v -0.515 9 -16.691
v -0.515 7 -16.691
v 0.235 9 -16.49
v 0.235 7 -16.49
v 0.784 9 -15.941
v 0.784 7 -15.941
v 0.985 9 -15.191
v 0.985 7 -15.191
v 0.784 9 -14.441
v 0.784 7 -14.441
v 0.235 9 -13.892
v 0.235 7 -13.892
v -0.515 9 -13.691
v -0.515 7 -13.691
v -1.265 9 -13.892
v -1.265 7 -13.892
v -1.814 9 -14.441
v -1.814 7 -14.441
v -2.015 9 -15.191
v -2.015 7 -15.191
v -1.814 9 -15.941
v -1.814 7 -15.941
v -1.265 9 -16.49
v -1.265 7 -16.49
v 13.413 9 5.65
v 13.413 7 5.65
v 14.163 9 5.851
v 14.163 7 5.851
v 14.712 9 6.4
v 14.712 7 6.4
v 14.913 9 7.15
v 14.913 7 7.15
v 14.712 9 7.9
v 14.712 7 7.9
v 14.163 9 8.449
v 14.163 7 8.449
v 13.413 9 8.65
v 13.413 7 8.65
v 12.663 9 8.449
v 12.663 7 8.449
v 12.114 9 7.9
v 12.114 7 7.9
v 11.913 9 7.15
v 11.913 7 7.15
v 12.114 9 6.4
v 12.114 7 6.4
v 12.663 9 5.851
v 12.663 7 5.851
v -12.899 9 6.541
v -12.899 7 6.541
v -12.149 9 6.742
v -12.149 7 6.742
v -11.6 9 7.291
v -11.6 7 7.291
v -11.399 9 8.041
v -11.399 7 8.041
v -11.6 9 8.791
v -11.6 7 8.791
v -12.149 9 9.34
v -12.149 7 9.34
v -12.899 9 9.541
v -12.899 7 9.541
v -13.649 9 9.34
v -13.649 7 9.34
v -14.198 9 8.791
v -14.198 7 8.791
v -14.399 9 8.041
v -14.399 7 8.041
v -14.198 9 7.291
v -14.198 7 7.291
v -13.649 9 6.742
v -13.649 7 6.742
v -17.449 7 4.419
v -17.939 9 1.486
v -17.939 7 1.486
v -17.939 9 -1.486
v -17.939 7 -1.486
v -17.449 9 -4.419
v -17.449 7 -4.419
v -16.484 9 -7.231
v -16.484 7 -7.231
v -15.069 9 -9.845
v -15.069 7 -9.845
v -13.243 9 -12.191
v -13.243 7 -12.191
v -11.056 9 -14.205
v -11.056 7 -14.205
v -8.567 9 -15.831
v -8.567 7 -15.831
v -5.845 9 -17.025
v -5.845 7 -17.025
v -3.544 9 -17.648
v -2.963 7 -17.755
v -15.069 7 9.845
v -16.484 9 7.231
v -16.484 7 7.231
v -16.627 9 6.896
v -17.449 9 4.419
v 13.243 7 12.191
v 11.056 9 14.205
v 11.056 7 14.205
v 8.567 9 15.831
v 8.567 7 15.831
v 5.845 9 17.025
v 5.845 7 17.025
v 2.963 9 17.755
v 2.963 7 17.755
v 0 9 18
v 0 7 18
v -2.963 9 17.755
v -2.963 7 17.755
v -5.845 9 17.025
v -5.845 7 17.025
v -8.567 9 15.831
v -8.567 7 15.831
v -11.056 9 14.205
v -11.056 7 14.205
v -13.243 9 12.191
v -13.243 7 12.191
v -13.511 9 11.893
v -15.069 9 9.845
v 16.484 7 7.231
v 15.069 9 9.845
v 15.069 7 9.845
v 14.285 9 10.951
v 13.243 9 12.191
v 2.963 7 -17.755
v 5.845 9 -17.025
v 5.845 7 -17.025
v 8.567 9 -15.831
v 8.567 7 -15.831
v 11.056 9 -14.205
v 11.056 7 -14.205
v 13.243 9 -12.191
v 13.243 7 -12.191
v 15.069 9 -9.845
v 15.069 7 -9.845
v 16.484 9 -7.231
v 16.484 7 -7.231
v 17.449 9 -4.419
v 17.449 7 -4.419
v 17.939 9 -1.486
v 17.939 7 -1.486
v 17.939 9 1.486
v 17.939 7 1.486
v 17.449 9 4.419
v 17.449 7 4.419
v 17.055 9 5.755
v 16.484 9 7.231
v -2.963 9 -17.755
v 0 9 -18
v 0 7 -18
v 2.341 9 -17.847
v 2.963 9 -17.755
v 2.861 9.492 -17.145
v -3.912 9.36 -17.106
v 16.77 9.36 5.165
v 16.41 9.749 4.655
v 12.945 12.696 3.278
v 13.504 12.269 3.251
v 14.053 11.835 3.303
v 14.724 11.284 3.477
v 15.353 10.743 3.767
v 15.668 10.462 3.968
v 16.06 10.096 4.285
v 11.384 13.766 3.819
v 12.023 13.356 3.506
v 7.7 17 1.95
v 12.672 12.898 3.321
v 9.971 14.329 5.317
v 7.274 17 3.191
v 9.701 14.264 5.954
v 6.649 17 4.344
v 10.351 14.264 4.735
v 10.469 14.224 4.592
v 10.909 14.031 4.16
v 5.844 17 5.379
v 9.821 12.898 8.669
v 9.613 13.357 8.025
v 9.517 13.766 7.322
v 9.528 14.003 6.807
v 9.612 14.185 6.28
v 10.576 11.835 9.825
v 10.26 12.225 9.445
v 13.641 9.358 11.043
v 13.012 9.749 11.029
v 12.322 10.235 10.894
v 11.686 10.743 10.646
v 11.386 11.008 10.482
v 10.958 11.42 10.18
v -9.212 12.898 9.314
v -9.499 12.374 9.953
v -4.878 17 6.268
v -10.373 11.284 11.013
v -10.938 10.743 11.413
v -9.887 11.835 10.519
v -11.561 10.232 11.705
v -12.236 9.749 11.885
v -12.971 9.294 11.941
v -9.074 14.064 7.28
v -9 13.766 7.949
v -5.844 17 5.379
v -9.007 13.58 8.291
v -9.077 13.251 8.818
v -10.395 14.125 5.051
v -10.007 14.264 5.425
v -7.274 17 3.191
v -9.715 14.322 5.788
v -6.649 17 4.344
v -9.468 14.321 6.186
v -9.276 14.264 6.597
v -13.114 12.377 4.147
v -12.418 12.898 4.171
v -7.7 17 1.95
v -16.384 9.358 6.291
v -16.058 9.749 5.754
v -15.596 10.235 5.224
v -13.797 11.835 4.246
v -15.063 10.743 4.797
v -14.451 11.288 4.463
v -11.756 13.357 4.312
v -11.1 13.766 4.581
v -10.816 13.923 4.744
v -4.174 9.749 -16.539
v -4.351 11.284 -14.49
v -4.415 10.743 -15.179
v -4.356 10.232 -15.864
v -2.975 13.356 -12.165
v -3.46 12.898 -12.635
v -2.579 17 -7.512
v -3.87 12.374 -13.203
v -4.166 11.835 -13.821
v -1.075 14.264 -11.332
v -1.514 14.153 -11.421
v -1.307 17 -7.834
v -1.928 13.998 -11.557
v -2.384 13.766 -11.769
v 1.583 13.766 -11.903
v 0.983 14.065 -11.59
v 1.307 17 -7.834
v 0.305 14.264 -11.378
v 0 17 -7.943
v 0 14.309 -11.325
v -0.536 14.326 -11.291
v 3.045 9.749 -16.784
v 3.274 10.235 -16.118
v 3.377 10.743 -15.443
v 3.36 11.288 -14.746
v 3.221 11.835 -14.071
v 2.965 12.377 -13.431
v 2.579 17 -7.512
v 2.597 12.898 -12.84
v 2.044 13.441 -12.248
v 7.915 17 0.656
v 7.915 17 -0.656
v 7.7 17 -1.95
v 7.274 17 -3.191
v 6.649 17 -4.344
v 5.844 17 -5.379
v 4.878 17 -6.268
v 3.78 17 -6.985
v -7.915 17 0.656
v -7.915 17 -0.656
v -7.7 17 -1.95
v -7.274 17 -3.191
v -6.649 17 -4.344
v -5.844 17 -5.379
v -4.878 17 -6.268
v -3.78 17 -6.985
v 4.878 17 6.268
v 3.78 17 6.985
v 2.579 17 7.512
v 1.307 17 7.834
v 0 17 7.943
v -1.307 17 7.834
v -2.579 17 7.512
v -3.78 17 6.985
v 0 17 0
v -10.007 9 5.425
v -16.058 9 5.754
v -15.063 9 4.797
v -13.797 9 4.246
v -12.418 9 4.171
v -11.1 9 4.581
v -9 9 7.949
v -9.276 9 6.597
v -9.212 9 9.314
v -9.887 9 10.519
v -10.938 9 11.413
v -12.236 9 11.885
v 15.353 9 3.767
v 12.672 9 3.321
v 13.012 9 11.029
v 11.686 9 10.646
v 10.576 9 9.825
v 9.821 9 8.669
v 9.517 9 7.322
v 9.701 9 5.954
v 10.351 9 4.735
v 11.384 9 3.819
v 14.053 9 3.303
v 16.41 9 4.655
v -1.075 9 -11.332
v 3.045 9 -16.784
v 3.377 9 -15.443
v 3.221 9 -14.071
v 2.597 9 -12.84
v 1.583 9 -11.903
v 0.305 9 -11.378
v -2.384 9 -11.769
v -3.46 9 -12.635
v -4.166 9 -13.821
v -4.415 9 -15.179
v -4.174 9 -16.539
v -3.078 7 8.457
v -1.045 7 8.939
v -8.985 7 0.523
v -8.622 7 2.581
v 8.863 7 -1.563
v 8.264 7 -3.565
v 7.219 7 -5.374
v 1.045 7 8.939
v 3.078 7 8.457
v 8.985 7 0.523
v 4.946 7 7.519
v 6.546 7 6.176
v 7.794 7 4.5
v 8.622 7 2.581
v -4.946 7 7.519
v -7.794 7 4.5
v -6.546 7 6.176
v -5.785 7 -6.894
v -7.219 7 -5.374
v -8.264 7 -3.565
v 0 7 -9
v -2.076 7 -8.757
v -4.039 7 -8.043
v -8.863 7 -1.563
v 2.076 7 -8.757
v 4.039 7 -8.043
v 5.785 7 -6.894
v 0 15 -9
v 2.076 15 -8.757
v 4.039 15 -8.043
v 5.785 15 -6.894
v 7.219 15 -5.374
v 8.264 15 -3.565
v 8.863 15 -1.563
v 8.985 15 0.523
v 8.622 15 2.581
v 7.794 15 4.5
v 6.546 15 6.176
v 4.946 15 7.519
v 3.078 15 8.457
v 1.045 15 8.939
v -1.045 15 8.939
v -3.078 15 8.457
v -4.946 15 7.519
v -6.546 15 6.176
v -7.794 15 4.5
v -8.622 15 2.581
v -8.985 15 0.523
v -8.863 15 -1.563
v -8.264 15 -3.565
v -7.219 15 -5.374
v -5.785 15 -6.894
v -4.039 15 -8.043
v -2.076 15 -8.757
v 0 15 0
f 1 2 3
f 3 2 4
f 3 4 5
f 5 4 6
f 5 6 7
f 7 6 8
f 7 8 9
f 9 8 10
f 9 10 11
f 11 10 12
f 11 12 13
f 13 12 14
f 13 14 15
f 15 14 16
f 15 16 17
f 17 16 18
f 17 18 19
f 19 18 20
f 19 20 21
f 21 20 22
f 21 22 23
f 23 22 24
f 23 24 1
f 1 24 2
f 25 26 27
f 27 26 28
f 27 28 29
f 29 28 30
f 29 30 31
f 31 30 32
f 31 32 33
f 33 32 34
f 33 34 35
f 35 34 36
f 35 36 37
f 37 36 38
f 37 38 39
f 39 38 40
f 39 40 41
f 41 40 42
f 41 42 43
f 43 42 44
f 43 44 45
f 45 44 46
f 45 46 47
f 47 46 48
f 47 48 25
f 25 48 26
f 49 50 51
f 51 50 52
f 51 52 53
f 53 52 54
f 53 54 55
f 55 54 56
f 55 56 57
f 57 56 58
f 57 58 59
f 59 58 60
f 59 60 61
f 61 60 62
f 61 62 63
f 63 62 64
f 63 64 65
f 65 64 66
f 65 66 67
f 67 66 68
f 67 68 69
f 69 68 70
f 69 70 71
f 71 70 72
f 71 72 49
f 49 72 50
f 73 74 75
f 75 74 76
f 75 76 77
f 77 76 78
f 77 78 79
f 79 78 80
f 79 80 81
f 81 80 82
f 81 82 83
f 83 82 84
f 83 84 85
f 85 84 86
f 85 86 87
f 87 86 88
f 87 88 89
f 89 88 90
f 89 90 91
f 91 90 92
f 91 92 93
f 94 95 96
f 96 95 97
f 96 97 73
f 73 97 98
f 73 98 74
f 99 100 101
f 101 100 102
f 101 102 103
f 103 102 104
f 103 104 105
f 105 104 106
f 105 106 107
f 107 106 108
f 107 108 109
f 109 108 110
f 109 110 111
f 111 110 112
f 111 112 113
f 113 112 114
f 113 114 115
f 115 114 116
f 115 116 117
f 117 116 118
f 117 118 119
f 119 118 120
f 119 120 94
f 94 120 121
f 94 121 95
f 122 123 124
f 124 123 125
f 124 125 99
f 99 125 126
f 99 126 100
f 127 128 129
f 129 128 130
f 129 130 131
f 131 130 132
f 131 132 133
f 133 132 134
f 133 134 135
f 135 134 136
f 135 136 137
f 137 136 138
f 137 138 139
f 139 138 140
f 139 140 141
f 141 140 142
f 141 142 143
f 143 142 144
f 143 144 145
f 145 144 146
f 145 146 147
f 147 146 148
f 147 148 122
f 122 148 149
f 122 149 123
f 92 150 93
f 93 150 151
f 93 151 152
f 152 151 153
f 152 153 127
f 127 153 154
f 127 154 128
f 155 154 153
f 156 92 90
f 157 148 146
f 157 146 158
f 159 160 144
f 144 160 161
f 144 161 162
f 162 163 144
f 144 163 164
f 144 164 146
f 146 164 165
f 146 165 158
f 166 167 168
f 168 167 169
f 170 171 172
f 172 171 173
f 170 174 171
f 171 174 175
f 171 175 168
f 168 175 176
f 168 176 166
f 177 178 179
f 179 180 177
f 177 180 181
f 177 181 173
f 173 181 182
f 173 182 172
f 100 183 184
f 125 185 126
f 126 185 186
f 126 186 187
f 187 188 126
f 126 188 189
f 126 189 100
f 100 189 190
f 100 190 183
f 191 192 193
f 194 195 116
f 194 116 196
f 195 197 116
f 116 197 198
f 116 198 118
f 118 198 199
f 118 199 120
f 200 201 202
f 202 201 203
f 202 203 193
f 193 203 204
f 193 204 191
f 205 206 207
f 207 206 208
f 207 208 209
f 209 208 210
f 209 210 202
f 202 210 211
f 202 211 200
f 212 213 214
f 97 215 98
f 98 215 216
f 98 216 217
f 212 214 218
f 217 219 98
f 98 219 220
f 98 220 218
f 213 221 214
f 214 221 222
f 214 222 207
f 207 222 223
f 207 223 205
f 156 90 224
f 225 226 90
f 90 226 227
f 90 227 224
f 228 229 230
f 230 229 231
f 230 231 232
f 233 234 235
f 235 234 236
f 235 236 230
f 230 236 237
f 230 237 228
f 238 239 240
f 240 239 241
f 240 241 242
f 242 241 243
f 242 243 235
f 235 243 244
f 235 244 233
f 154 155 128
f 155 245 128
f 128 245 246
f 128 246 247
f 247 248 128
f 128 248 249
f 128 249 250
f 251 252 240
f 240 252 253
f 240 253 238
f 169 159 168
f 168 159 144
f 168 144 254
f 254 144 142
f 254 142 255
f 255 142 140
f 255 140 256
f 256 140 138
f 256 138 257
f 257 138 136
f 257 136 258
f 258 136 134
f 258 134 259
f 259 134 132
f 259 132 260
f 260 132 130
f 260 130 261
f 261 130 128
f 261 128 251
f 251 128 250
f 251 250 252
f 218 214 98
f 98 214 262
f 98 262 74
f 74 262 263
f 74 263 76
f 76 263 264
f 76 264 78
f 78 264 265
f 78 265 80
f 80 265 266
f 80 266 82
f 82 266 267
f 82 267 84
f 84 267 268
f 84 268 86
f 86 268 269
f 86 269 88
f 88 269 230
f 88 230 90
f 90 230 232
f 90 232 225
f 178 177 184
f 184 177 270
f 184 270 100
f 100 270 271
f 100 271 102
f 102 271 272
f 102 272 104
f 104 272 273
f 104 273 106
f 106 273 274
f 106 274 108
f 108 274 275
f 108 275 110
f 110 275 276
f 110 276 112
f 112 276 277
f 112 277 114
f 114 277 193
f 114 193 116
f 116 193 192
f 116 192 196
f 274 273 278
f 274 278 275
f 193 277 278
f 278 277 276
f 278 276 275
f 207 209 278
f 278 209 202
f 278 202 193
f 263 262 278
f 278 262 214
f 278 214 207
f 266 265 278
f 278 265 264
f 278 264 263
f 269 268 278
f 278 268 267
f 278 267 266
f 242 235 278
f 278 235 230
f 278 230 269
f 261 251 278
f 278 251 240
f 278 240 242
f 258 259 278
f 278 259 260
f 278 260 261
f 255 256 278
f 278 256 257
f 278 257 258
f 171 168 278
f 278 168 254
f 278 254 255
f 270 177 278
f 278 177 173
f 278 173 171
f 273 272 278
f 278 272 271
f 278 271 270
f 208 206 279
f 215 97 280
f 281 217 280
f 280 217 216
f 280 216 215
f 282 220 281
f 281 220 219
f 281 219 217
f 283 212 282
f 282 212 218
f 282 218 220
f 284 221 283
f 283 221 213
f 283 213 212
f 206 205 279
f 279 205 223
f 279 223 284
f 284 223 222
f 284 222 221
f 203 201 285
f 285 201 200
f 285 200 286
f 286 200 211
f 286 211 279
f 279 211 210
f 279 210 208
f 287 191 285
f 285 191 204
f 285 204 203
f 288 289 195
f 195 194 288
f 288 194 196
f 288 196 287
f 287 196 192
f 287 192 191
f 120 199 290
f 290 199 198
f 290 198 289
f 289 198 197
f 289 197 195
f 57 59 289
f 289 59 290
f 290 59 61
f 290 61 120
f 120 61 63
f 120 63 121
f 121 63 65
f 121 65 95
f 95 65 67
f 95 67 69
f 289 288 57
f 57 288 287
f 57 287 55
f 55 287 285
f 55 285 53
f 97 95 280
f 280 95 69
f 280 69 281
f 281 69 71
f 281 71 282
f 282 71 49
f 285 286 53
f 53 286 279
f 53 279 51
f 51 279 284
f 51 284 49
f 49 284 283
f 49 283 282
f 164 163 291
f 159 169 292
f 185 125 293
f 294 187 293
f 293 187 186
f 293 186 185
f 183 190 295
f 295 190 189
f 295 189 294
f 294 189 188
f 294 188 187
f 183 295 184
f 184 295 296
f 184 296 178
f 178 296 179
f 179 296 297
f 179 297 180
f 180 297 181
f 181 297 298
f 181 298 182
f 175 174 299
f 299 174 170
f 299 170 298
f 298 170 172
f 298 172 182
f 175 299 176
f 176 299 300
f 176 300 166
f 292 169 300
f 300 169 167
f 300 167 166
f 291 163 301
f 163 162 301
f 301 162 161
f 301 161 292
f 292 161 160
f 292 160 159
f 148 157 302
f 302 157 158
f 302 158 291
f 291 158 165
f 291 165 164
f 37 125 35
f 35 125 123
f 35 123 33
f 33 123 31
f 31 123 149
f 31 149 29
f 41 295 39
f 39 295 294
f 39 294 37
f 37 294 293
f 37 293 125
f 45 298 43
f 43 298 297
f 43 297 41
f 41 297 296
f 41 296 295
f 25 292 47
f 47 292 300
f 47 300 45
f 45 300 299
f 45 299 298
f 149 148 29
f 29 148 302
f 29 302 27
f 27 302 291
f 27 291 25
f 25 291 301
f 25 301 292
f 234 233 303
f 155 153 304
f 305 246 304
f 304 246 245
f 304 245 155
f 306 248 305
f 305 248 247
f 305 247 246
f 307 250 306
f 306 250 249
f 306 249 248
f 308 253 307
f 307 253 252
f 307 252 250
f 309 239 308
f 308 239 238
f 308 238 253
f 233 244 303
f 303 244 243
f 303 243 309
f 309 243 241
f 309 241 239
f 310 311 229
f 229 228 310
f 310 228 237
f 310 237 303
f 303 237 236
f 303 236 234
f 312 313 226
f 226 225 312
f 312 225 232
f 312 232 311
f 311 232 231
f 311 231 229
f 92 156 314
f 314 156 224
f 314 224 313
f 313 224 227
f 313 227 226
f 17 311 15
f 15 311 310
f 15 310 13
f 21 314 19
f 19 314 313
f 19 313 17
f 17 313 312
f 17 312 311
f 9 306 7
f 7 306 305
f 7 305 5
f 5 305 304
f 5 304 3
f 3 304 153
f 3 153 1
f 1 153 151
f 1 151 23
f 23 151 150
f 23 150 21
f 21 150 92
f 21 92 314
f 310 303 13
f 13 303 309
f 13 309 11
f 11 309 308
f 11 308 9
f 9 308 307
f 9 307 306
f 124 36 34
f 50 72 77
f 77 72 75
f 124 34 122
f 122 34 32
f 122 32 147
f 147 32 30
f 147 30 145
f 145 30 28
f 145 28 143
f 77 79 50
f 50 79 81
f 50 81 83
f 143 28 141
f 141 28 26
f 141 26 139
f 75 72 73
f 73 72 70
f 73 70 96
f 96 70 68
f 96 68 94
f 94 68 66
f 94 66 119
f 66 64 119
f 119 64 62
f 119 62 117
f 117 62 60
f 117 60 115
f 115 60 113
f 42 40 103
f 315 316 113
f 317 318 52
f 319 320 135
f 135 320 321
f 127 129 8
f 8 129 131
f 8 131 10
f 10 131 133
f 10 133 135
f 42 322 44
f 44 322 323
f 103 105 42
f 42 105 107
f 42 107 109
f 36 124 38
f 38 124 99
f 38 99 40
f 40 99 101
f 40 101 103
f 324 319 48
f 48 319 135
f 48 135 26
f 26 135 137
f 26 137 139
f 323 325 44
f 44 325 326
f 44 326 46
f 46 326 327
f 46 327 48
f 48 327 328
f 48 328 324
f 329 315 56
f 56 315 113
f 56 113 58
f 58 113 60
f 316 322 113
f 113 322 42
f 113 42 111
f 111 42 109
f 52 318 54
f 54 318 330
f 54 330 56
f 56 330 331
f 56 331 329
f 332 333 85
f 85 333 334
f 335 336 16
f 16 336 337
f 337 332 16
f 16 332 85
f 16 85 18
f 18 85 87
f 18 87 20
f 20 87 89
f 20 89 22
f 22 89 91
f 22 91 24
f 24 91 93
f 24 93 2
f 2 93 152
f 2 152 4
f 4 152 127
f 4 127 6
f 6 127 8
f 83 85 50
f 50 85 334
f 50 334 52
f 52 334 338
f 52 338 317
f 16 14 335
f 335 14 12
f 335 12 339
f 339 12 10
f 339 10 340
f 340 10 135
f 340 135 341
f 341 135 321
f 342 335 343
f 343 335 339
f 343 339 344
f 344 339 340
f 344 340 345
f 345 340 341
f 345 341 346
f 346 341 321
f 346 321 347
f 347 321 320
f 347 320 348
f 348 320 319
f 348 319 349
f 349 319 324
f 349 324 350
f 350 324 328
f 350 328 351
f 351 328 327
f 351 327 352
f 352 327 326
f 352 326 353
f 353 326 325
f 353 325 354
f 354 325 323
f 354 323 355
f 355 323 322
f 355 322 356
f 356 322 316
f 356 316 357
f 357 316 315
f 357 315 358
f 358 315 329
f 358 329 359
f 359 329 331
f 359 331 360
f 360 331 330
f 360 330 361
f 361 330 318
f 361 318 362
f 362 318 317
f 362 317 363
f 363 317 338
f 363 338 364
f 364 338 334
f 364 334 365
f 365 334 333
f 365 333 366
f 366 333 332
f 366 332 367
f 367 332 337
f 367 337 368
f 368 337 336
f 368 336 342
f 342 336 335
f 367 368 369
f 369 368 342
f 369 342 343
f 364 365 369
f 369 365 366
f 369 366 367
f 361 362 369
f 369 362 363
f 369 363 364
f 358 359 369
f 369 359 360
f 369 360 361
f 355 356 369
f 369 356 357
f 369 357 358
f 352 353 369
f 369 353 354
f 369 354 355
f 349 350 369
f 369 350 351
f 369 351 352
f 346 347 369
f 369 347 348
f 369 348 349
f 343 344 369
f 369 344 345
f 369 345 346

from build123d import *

# Parameters (mm, degrees)
ESQUISSE1_R             = 10.85
ESQUISSE1_R_2           = 9
BOSS_EXTRU_1_DEPTH      = 7
ESQUISSE2_R             = 18
BOSS_EXTRU_2_DEPTH      = 2
ESQUISSE4_R             = 18
BOSS_EXTRU_3_DEPTH      = 8
BOSS_EXTRU_3_TAPER      = 51.5
ESQUISSE5_R             = 1.5
ENL_V_MAT_EXTRU_1_DEPTH = 4
ESQUISSE6_R             = 3.9
ENL_V_MAT_EXTRU_2_DEPTH = 8
ESQUISSE9_R             = 10.85
ENL_V_MAT_EXTRU_4_DEPTH = 7
ESQUISSE10_R            = 9
ENL_V_MAT_EXTRU_5_DEPTH = 8


with BuildPart() as part:
    # Esquisse1 → Boss.-Extru.1 (new body)
    with BuildSketch(Plane(origin=(0, 0, 0), x_dir=(1, 0, 0), z_dir=(0, 1, 0))):
        with Locations(Location((0, 0, 0), (0, 0, 270))):
            Circle(ESQUISSE1_R)
        with Locations(Location((0, 0, 0), (0, 0, 270))):
            Circle(ESQUISSE1_R_2, mode=Mode.SUBTRACT)
    extrude(amount=BOSS_EXTRU_1_DEPTH)

    # Esquisse2 → Boss.-Extru.2 (add)
    with BuildSketch(Plane(origin=(0, 7, 0), x_dir=(1, 0, 0), z_dir=(0, 1, 0))):
        with Locations(Location((0, 0, 0), (0, 0, 270))):
            Circle(ESQUISSE2_R)
    extrude(amount=BOSS_EXTRU_2_DEPTH)

    # Esquisse4 → Boss.-Extru.3 (add)
    with BuildSketch(Plane(origin=(0, 9, 0), x_dir=(1, 0, 0), z_dir=(0, 1, 0))):
        with Locations(Location((0, 0, 0), (0, 0, 270))):
            Circle(ESQUISSE4_R)
    extrude(amount=BOSS_EXTRU_3_DEPTH, taper=BOSS_EXTRU_3_TAPER)

    # Esquisse5 → Enlèv. mat.-Extru.1 (cut)
    with BuildSketch(Plane.XZ.offset(-7)):
        with Locations(Location((-12.898733794, 8.041309999, 0), (0, 0, 270))):
            Circle(ESQUISSE5_R)
        with Locations(Location((13.413345636, 7.149976143, 0), (0, 0, 270))):
            Circle(ESQUISSE5_R)
        with Locations(Location((-0.514611842, -15.191286142, 0), (0, 0, 270))):
            Circle(ESQUISSE5_R)
    extrude(amount=-ENL_V_MAT_EXTRU_1_DEPTH, mode=Mode.SUBTRACT)

    # Esquisse6 → Enlèv. mat.-Extru.2 (cut)
    with BuildSketch(Plane(origin=(0, 17, 0), x_dir=(1, 0, 0), z_dir=(0, 1, 0))):
        with Locations((-0.514611842, 15.191286142)):
            Circle(ESQUISSE6_R)
        with Locations((13.413345636, -7.149976143)):
            Circle(ESQUISSE6_R)
        with Locations((-12.898733794, -8.041309999)):
            Circle(ESQUISSE6_R)
    extrude(amount=-ENL_V_MAT_EXTRU_2_DEPTH, mode=Mode.SUBTRACT)

    # Esquisse9 → Enlèv. mat.-Extru.4 (cut)
    with BuildSketch(Plane.XZ):
        Circle(ESQUISSE9_R)
    extrude(amount=-ENL_V_MAT_EXTRU_4_DEPTH, mode=Mode.SUBTRACT)

    # Esquisse10 → Enlèv. mat.-Extru.5 (cut)
    with BuildSketch(Plane.XZ.offset(-7)):
        with Locations(Location((0, 0, 0), (0, 0, 270))):
            Circle(ESQUISSE10_R)
    extrude(amount=-ENL_V_MAT_EXTRU_5_DEPTH, mode=Mode.SUBTRACT)


solid = part.part
